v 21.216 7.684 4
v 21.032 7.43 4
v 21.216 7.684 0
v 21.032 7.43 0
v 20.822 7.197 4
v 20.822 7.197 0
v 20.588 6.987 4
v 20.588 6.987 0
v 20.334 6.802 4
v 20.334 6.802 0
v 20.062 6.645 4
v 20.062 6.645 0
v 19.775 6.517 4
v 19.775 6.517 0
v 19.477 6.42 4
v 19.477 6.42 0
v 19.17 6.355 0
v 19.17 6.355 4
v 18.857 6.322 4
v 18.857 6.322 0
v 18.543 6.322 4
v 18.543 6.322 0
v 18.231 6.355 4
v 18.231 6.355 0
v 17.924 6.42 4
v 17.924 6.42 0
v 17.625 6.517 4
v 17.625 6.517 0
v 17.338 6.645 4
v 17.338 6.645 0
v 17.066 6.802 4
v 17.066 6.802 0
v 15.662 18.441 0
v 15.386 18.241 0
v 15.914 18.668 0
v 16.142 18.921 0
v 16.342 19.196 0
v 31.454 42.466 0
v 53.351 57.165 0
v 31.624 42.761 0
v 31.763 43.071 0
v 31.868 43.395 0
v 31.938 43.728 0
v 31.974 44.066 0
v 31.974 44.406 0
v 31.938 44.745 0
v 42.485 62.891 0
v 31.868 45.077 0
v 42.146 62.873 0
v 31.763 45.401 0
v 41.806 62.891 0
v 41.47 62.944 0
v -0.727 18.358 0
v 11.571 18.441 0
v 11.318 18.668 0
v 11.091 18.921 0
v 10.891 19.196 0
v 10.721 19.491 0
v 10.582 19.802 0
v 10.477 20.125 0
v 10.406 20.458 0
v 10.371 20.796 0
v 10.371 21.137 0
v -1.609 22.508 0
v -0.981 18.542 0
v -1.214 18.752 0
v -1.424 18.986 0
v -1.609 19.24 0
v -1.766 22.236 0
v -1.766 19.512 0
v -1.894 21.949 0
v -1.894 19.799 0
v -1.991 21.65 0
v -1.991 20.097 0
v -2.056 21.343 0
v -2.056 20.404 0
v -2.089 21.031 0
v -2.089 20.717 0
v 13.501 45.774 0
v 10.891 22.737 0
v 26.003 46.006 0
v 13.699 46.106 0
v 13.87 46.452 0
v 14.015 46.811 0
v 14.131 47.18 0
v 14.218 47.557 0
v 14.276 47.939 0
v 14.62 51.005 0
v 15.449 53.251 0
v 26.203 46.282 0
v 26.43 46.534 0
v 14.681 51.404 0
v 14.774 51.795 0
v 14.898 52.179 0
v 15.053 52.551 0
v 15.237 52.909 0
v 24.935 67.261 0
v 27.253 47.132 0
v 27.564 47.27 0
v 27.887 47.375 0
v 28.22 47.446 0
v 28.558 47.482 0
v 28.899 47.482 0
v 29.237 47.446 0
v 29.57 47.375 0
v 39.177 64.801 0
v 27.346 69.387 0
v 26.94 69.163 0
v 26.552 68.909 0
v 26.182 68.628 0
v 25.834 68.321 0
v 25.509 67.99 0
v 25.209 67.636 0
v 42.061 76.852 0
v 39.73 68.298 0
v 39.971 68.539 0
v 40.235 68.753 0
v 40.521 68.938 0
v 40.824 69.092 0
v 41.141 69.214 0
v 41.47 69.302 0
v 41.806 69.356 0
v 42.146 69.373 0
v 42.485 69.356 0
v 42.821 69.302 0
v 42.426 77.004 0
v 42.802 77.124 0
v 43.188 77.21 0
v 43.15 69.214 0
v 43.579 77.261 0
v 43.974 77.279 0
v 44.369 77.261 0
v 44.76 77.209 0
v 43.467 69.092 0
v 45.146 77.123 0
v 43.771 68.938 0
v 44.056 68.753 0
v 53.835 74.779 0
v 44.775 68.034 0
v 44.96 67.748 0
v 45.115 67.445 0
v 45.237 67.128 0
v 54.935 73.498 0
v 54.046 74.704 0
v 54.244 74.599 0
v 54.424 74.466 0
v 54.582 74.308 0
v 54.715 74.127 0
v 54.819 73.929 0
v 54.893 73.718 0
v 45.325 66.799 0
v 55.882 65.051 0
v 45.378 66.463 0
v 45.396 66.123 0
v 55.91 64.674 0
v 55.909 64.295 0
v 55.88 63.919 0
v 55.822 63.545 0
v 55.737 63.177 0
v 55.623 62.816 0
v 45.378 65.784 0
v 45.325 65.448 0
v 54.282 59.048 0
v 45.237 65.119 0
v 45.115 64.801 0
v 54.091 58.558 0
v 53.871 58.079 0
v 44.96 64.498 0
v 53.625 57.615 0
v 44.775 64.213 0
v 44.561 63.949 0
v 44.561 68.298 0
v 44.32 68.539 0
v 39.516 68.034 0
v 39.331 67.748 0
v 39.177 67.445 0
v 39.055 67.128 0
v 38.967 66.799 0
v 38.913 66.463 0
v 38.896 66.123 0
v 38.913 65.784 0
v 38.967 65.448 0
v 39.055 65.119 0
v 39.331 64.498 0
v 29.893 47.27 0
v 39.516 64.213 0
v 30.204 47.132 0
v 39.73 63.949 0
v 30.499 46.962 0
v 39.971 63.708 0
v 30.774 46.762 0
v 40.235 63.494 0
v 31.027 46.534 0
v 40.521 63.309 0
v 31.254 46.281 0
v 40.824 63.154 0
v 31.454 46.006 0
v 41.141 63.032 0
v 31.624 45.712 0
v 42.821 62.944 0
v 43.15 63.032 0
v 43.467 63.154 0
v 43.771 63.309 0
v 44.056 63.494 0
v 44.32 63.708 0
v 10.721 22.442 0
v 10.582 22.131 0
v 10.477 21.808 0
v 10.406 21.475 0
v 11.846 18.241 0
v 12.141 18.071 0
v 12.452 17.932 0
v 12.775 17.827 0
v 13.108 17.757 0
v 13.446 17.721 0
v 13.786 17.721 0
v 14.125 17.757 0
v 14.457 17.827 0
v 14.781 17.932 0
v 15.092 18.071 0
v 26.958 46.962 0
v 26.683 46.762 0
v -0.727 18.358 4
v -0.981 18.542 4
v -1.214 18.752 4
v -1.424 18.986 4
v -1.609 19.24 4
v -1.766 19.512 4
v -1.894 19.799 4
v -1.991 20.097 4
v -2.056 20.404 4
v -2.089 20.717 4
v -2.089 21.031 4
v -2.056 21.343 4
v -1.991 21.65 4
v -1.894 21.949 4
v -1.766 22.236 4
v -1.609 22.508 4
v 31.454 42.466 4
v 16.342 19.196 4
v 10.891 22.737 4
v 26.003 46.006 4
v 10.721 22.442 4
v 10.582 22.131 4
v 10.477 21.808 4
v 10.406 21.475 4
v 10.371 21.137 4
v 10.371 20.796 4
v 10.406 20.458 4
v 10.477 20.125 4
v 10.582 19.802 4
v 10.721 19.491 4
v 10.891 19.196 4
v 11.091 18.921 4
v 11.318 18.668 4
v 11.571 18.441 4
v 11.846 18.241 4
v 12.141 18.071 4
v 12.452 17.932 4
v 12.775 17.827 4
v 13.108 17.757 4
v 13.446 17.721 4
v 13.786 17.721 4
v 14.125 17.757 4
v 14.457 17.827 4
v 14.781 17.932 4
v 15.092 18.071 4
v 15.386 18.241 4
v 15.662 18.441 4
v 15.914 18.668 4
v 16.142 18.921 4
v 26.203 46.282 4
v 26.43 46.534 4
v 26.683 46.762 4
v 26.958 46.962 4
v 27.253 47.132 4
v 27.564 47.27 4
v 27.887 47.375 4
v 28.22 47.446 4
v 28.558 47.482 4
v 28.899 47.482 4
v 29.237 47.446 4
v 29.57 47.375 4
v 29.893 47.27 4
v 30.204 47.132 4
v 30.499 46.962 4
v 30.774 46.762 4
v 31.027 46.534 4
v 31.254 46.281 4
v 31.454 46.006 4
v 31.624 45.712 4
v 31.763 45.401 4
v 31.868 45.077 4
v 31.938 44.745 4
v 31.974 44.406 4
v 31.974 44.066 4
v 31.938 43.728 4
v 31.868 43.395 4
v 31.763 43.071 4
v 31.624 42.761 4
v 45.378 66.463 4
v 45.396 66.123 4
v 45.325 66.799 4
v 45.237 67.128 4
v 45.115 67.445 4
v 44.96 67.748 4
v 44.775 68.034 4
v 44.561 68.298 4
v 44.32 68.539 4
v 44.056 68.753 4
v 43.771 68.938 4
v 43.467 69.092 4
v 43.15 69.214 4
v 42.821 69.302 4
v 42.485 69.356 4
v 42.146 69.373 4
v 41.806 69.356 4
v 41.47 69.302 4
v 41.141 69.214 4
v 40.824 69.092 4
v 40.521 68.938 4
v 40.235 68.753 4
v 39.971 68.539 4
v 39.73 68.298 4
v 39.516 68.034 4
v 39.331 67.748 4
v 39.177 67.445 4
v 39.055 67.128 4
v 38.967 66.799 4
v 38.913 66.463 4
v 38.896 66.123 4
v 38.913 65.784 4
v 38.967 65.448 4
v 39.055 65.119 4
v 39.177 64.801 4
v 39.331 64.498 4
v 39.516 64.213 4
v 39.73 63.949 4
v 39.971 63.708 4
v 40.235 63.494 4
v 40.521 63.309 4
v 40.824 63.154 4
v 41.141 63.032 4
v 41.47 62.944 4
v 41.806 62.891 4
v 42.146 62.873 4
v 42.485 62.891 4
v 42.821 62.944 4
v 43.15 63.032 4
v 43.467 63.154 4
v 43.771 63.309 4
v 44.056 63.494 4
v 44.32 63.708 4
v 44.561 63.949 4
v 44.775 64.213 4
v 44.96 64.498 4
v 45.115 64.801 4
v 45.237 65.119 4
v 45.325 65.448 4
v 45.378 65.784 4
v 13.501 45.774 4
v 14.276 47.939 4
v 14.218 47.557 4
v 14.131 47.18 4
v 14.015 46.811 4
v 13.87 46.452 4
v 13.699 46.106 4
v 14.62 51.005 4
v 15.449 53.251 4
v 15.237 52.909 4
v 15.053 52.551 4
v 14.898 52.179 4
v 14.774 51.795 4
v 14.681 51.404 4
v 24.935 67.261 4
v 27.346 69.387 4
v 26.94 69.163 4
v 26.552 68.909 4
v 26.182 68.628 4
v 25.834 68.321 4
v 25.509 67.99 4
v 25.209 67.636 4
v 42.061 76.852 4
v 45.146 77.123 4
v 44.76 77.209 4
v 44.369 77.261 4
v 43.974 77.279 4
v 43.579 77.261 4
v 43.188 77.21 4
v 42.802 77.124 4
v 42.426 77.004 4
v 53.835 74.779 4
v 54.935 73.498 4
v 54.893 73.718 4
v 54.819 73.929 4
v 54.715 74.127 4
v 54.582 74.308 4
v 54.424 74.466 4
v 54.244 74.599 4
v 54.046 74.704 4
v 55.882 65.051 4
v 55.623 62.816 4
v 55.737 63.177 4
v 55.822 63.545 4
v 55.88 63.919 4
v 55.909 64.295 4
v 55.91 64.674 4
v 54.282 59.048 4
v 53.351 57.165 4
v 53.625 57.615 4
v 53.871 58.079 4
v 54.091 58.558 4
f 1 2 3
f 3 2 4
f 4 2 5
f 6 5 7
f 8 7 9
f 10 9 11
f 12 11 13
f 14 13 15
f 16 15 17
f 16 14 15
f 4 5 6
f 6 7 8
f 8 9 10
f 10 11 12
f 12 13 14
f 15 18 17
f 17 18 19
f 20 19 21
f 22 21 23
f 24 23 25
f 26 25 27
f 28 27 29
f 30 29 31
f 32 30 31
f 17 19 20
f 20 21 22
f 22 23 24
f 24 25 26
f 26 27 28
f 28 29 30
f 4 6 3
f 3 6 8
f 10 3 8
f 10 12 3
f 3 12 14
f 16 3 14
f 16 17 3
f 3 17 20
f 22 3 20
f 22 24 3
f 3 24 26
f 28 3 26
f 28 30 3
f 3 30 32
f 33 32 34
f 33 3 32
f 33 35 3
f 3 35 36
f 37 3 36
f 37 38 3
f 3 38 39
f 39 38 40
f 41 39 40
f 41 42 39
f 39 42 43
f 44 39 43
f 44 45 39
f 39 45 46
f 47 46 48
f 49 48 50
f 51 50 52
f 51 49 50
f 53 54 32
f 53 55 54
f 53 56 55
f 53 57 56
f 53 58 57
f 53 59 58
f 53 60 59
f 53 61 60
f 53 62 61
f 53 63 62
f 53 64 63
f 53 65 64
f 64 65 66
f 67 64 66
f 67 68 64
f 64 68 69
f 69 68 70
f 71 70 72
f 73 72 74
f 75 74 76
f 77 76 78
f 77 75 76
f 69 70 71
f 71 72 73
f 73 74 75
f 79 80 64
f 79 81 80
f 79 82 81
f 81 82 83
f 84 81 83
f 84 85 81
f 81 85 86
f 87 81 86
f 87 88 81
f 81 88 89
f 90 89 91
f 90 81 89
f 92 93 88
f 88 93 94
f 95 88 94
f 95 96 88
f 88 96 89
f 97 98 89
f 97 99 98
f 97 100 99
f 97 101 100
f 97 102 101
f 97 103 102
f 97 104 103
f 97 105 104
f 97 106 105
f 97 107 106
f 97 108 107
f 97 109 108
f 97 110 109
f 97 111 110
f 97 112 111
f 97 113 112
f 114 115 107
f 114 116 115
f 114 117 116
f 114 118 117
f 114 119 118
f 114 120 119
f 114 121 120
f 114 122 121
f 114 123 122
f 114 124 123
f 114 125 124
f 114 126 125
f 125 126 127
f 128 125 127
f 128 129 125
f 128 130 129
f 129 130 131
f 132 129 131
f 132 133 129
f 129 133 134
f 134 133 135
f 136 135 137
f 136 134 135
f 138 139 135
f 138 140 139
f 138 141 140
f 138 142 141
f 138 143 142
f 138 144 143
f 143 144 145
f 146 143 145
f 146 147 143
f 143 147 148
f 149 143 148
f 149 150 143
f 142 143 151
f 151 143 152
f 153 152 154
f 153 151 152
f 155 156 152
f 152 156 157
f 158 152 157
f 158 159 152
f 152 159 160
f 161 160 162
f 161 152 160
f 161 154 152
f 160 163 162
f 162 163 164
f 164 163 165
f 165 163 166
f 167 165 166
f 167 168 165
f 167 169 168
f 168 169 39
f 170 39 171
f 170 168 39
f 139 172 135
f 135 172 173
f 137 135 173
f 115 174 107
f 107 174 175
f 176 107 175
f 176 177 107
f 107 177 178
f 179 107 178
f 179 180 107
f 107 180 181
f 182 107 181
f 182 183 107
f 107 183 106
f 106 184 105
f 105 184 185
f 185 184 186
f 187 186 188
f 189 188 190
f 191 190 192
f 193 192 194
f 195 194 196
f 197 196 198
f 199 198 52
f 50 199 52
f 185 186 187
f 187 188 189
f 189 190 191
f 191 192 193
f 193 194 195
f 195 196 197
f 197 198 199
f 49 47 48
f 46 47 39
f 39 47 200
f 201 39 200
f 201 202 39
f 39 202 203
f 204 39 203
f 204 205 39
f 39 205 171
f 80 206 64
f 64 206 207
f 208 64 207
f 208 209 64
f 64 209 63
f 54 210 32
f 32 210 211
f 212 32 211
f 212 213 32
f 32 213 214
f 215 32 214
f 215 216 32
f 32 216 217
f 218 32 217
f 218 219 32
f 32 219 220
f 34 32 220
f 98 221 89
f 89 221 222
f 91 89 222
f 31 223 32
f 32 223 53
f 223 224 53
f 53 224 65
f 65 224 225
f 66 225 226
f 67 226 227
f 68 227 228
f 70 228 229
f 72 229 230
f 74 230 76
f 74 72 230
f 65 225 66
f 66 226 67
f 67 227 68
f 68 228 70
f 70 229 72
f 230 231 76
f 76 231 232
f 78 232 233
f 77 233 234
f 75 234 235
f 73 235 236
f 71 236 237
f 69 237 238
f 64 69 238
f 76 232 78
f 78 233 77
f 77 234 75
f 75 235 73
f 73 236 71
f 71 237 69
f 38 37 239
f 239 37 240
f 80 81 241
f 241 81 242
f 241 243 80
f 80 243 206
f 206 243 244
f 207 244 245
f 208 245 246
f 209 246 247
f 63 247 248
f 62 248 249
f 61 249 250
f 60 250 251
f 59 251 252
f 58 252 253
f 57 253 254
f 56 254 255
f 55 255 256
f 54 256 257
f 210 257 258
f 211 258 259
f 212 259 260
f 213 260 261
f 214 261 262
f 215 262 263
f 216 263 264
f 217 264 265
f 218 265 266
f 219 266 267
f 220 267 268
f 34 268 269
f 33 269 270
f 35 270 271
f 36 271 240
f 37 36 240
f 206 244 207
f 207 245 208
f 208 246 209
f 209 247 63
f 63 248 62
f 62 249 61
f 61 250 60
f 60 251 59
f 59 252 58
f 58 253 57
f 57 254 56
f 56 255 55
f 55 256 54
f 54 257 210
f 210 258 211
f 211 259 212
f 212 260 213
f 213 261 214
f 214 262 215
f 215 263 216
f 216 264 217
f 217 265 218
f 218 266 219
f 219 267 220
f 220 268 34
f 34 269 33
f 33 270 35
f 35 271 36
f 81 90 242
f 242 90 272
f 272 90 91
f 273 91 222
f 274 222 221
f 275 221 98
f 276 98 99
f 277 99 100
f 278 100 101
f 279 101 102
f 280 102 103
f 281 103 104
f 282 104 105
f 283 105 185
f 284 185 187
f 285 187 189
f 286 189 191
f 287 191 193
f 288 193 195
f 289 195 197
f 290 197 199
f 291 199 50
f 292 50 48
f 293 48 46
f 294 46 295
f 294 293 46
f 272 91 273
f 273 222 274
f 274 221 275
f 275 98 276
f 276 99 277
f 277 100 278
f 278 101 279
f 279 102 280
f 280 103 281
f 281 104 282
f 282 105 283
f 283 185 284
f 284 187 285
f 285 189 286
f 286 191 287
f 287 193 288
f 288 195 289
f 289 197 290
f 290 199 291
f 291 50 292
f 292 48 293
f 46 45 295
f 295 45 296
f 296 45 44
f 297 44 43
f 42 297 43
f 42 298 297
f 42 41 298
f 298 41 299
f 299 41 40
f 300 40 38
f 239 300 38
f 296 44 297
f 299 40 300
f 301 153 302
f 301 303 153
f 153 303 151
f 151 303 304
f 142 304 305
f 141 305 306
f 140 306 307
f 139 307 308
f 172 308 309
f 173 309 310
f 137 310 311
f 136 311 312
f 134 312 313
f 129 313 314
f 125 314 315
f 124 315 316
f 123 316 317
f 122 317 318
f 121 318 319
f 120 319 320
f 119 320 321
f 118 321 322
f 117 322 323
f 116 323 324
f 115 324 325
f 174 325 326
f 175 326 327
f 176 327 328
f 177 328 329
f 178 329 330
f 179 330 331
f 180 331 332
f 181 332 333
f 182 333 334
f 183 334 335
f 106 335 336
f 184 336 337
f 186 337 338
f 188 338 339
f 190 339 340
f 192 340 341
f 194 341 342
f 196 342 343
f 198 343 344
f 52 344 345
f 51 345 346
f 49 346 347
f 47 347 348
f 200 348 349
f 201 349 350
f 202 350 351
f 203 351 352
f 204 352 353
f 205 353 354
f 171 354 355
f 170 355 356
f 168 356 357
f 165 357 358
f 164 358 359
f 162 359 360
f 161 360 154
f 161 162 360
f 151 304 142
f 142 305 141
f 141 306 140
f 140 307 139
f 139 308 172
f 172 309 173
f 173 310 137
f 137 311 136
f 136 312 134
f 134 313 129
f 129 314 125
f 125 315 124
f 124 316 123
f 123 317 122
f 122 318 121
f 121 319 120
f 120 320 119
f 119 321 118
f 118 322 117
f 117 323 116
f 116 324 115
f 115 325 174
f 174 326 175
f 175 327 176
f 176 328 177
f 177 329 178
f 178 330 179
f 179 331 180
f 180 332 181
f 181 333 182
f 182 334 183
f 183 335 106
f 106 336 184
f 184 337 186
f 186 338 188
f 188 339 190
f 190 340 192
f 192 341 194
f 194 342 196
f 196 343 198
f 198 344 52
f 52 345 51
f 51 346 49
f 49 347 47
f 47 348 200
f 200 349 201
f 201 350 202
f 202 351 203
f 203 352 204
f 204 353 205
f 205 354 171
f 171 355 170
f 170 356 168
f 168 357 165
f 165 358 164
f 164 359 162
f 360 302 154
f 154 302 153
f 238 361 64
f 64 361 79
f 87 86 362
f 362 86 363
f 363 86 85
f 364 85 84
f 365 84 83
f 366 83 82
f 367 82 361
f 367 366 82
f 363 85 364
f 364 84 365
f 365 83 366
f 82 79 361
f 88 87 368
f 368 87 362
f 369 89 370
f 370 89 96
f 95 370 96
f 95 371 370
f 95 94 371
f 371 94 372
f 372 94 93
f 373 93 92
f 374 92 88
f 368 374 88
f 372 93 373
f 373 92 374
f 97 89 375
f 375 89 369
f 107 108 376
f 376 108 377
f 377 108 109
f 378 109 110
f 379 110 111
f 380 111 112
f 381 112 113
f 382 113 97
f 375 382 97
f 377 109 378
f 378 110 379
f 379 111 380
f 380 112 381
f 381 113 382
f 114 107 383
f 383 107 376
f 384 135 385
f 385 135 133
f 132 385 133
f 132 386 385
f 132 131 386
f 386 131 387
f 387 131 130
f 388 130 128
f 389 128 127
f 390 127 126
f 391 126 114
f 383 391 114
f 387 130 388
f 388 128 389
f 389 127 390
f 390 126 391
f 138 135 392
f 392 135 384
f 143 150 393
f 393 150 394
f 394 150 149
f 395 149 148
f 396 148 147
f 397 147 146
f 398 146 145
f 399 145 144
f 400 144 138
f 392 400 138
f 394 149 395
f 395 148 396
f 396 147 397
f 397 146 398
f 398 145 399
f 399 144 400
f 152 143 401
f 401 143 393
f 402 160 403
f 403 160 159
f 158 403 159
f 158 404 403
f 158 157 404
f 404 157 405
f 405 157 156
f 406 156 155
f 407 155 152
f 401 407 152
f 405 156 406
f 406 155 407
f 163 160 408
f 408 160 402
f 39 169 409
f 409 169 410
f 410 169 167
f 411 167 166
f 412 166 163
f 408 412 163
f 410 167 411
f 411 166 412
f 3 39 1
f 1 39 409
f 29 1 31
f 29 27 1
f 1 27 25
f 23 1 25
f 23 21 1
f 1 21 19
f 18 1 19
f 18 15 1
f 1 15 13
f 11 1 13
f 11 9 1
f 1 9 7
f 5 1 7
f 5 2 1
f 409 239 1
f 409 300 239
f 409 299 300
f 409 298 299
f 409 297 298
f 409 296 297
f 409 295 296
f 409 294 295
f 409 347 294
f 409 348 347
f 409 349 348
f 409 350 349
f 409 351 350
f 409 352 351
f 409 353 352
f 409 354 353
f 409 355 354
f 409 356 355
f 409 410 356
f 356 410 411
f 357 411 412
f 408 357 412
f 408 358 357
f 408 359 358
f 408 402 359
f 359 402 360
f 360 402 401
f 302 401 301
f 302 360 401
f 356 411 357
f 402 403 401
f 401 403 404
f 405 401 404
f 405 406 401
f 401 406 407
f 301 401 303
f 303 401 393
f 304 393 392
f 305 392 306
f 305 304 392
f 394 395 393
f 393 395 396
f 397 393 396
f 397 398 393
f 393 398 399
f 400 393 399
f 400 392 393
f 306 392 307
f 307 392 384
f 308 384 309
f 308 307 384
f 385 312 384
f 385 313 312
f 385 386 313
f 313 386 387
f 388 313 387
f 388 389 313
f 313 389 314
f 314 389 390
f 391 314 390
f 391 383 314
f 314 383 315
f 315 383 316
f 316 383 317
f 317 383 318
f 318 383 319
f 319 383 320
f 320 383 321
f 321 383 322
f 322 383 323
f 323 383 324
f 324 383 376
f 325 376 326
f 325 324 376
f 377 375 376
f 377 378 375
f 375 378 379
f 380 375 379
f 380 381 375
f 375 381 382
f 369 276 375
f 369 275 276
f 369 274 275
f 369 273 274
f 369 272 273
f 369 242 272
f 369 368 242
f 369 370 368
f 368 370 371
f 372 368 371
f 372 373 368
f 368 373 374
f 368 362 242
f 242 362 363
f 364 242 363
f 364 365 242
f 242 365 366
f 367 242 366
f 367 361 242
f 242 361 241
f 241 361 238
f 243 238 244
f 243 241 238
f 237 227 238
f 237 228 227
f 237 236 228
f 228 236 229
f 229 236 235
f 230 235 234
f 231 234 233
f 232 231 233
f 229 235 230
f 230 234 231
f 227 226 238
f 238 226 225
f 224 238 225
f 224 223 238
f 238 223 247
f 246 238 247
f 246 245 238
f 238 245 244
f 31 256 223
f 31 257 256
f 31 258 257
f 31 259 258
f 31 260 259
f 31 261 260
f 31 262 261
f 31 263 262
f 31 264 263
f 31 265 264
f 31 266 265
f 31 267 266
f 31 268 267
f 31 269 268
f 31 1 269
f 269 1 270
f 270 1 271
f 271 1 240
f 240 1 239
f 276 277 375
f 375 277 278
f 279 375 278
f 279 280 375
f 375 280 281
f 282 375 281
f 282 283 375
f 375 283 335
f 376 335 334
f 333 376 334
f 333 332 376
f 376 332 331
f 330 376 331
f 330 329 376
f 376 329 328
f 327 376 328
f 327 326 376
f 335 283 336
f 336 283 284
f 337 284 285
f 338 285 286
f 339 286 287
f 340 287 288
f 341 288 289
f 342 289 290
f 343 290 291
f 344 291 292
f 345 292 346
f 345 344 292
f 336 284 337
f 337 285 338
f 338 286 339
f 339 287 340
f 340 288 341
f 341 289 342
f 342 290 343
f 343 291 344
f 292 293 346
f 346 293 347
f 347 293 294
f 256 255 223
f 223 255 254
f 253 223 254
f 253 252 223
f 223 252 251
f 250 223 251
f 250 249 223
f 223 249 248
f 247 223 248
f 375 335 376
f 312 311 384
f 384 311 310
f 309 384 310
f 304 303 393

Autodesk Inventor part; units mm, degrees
ref_plane "YZ Plane" through (0, 0, 0) normal (1, 0, 0) x (0, 1, 0)
ref_plane "XZ Plane" through (0, 0, 0) normal (0, 1, 0) x (-1, 0, 0)
ref_plane "XY Plane" through (0, 0, 0) normal (0, 0, 1) x (1, 0, 0)
sketch "Body" plane through (0, 0, 0) normal (0, 0, 1) x (1, 0, 0)
  line L0 (27.316, 36.0942) -> (2.7256, -1.7701) construction
  line L1 (-2.7256, 1.7701) -> (21.8647, 39.6345) construction
  line L2 (39.19, 35.3599) -> (32.4946, 58.4071) construction
  line L3 (32.4946, 58.4071) -> (19.5232, 59.2689) construction
  line L4 (19.5232, 59.2689) -> (15.4488, 53.2513) construction
  arc A0 (15.4488, 53.2513) -> (14.6202, 51.0054) centre (19.5891, 50.448) ccw
  line L5 (14.6202, 51.0054) -> (14.2763, 47.9393)
  arc A1 (13.5008, 45.7735) -> (14.2763, 47.9393) centre (9.3074, 48.4968) ccw
  line L6 (13.5008, 45.7735) -> (-11.4127, 7.4118) construction
  line L7 (11.4127, -7.4118) -> (39.19, 35.3599) construction
  line L8 (-11.4127, 7.4118) -> (11.4127, -7.4118) construction
  arc A2 (53.351, 57.1651) -> (54.2815, 59.0478) centre (45.8031, 62.067) ccw
  arc A3 (27.3464, 69.3874) -> (24.9347, 67.2614) centre (30.251, 63.6618) ccw
  arc A4 (45.1456, 77.1234) -> (42.0612, 76.8523) centre (43.9732, 72.7788) ccw
  arc A5 (54.9347, 73.4976) -> (53.8348, 74.7787) centre (53.444, 73.3305) ccw
  arc A6 (55.6234, 62.816) -> (55.882, 65.0506) centre (50.9132, 64.4933) ccw
  line L9 (42.0612, 76.8523) -> (27.3464, 69.3874)
  line L10 (53.8348, 74.7787) -> (45.1456, 77.1234)
  line L11 (55.882, 65.0506) -> (54.9347, 73.4976)
  line L12 (54.2815, 59.0478) -> (55.6234, 62.816)
  line L13 (39.19, 35.3599) -> (53.351, 57.1651)
  arc A7 (15.4488, 53.2513) -> (14.6202, 51.0054) centre (19.5891, 50.448) ccw
  line L14 (14.6202, 51.0054) -> (14.2763, 47.9393)
  line L15 (13.5008, 45.7735) -> (-3.2428, 19.9917)
  line L16 (-3.2428, 19.9917) -> (19.5825, 5.1682)
  line L17 (19.5825, 5.1682) -> (39.19, 35.3599)
  line L18 (24.9347, 67.2614) -> (15.4488, 53.2513)
  line L19 (27.316, 36.0942) -> (21.8647, 39.6345) construction
  circle A8 centre (13.6164, 20.9665) radius 3.25
  line L20 (13.6164, 20.9665) -> (34.175, 52.6228) construction
  circle A9 centre (28.7285, 44.2362) radius 3.25
  line L21 (26.0028, 46.0064) -> (10.8907, 22.7366)
  line L22 (31.4541, 42.4661) -> (16.342, 19.1964)
  circle A10 centre (42.1456, 66.1234) radius 3.25
  point P0 (0, 0)
  point P1 (0, 0)
  dimension "d25" = 138
  dimension "d26" = 111.5
  dimension "d27" = 154
  dimension "d31" = 6.5
  dimension "d32" = 15
  dimension "d33" = 16.5
  dimension "d34" = 151
  dimension "d35" = 6.4202
  dimension "d36" = 8.5
  dimension "d37" = 4
  dimension "d38" = 9
  dimension "d39" = 4.5
  dimension "d40" = 1.5
  dimension "d41" = 5
  dimension "d42" = 9
  dimension "d43" = 26
  dimension "d44" = 6.5
  dimension "d45" = 10
  dimension "d46" = 10
  dimension "d47" = 6.5
  dimension "d48" = 3
  dimension "d49" = 11
extrude "BodyFeature" add sketch "Body" along normal blind 4
fillet "EndFilletsFeature" radius 3 2 edges at (-3.2428, 19.9917, 2) (19.5825, 5.1682, 2)
properties part number "PelvisSubLinkLeft"
